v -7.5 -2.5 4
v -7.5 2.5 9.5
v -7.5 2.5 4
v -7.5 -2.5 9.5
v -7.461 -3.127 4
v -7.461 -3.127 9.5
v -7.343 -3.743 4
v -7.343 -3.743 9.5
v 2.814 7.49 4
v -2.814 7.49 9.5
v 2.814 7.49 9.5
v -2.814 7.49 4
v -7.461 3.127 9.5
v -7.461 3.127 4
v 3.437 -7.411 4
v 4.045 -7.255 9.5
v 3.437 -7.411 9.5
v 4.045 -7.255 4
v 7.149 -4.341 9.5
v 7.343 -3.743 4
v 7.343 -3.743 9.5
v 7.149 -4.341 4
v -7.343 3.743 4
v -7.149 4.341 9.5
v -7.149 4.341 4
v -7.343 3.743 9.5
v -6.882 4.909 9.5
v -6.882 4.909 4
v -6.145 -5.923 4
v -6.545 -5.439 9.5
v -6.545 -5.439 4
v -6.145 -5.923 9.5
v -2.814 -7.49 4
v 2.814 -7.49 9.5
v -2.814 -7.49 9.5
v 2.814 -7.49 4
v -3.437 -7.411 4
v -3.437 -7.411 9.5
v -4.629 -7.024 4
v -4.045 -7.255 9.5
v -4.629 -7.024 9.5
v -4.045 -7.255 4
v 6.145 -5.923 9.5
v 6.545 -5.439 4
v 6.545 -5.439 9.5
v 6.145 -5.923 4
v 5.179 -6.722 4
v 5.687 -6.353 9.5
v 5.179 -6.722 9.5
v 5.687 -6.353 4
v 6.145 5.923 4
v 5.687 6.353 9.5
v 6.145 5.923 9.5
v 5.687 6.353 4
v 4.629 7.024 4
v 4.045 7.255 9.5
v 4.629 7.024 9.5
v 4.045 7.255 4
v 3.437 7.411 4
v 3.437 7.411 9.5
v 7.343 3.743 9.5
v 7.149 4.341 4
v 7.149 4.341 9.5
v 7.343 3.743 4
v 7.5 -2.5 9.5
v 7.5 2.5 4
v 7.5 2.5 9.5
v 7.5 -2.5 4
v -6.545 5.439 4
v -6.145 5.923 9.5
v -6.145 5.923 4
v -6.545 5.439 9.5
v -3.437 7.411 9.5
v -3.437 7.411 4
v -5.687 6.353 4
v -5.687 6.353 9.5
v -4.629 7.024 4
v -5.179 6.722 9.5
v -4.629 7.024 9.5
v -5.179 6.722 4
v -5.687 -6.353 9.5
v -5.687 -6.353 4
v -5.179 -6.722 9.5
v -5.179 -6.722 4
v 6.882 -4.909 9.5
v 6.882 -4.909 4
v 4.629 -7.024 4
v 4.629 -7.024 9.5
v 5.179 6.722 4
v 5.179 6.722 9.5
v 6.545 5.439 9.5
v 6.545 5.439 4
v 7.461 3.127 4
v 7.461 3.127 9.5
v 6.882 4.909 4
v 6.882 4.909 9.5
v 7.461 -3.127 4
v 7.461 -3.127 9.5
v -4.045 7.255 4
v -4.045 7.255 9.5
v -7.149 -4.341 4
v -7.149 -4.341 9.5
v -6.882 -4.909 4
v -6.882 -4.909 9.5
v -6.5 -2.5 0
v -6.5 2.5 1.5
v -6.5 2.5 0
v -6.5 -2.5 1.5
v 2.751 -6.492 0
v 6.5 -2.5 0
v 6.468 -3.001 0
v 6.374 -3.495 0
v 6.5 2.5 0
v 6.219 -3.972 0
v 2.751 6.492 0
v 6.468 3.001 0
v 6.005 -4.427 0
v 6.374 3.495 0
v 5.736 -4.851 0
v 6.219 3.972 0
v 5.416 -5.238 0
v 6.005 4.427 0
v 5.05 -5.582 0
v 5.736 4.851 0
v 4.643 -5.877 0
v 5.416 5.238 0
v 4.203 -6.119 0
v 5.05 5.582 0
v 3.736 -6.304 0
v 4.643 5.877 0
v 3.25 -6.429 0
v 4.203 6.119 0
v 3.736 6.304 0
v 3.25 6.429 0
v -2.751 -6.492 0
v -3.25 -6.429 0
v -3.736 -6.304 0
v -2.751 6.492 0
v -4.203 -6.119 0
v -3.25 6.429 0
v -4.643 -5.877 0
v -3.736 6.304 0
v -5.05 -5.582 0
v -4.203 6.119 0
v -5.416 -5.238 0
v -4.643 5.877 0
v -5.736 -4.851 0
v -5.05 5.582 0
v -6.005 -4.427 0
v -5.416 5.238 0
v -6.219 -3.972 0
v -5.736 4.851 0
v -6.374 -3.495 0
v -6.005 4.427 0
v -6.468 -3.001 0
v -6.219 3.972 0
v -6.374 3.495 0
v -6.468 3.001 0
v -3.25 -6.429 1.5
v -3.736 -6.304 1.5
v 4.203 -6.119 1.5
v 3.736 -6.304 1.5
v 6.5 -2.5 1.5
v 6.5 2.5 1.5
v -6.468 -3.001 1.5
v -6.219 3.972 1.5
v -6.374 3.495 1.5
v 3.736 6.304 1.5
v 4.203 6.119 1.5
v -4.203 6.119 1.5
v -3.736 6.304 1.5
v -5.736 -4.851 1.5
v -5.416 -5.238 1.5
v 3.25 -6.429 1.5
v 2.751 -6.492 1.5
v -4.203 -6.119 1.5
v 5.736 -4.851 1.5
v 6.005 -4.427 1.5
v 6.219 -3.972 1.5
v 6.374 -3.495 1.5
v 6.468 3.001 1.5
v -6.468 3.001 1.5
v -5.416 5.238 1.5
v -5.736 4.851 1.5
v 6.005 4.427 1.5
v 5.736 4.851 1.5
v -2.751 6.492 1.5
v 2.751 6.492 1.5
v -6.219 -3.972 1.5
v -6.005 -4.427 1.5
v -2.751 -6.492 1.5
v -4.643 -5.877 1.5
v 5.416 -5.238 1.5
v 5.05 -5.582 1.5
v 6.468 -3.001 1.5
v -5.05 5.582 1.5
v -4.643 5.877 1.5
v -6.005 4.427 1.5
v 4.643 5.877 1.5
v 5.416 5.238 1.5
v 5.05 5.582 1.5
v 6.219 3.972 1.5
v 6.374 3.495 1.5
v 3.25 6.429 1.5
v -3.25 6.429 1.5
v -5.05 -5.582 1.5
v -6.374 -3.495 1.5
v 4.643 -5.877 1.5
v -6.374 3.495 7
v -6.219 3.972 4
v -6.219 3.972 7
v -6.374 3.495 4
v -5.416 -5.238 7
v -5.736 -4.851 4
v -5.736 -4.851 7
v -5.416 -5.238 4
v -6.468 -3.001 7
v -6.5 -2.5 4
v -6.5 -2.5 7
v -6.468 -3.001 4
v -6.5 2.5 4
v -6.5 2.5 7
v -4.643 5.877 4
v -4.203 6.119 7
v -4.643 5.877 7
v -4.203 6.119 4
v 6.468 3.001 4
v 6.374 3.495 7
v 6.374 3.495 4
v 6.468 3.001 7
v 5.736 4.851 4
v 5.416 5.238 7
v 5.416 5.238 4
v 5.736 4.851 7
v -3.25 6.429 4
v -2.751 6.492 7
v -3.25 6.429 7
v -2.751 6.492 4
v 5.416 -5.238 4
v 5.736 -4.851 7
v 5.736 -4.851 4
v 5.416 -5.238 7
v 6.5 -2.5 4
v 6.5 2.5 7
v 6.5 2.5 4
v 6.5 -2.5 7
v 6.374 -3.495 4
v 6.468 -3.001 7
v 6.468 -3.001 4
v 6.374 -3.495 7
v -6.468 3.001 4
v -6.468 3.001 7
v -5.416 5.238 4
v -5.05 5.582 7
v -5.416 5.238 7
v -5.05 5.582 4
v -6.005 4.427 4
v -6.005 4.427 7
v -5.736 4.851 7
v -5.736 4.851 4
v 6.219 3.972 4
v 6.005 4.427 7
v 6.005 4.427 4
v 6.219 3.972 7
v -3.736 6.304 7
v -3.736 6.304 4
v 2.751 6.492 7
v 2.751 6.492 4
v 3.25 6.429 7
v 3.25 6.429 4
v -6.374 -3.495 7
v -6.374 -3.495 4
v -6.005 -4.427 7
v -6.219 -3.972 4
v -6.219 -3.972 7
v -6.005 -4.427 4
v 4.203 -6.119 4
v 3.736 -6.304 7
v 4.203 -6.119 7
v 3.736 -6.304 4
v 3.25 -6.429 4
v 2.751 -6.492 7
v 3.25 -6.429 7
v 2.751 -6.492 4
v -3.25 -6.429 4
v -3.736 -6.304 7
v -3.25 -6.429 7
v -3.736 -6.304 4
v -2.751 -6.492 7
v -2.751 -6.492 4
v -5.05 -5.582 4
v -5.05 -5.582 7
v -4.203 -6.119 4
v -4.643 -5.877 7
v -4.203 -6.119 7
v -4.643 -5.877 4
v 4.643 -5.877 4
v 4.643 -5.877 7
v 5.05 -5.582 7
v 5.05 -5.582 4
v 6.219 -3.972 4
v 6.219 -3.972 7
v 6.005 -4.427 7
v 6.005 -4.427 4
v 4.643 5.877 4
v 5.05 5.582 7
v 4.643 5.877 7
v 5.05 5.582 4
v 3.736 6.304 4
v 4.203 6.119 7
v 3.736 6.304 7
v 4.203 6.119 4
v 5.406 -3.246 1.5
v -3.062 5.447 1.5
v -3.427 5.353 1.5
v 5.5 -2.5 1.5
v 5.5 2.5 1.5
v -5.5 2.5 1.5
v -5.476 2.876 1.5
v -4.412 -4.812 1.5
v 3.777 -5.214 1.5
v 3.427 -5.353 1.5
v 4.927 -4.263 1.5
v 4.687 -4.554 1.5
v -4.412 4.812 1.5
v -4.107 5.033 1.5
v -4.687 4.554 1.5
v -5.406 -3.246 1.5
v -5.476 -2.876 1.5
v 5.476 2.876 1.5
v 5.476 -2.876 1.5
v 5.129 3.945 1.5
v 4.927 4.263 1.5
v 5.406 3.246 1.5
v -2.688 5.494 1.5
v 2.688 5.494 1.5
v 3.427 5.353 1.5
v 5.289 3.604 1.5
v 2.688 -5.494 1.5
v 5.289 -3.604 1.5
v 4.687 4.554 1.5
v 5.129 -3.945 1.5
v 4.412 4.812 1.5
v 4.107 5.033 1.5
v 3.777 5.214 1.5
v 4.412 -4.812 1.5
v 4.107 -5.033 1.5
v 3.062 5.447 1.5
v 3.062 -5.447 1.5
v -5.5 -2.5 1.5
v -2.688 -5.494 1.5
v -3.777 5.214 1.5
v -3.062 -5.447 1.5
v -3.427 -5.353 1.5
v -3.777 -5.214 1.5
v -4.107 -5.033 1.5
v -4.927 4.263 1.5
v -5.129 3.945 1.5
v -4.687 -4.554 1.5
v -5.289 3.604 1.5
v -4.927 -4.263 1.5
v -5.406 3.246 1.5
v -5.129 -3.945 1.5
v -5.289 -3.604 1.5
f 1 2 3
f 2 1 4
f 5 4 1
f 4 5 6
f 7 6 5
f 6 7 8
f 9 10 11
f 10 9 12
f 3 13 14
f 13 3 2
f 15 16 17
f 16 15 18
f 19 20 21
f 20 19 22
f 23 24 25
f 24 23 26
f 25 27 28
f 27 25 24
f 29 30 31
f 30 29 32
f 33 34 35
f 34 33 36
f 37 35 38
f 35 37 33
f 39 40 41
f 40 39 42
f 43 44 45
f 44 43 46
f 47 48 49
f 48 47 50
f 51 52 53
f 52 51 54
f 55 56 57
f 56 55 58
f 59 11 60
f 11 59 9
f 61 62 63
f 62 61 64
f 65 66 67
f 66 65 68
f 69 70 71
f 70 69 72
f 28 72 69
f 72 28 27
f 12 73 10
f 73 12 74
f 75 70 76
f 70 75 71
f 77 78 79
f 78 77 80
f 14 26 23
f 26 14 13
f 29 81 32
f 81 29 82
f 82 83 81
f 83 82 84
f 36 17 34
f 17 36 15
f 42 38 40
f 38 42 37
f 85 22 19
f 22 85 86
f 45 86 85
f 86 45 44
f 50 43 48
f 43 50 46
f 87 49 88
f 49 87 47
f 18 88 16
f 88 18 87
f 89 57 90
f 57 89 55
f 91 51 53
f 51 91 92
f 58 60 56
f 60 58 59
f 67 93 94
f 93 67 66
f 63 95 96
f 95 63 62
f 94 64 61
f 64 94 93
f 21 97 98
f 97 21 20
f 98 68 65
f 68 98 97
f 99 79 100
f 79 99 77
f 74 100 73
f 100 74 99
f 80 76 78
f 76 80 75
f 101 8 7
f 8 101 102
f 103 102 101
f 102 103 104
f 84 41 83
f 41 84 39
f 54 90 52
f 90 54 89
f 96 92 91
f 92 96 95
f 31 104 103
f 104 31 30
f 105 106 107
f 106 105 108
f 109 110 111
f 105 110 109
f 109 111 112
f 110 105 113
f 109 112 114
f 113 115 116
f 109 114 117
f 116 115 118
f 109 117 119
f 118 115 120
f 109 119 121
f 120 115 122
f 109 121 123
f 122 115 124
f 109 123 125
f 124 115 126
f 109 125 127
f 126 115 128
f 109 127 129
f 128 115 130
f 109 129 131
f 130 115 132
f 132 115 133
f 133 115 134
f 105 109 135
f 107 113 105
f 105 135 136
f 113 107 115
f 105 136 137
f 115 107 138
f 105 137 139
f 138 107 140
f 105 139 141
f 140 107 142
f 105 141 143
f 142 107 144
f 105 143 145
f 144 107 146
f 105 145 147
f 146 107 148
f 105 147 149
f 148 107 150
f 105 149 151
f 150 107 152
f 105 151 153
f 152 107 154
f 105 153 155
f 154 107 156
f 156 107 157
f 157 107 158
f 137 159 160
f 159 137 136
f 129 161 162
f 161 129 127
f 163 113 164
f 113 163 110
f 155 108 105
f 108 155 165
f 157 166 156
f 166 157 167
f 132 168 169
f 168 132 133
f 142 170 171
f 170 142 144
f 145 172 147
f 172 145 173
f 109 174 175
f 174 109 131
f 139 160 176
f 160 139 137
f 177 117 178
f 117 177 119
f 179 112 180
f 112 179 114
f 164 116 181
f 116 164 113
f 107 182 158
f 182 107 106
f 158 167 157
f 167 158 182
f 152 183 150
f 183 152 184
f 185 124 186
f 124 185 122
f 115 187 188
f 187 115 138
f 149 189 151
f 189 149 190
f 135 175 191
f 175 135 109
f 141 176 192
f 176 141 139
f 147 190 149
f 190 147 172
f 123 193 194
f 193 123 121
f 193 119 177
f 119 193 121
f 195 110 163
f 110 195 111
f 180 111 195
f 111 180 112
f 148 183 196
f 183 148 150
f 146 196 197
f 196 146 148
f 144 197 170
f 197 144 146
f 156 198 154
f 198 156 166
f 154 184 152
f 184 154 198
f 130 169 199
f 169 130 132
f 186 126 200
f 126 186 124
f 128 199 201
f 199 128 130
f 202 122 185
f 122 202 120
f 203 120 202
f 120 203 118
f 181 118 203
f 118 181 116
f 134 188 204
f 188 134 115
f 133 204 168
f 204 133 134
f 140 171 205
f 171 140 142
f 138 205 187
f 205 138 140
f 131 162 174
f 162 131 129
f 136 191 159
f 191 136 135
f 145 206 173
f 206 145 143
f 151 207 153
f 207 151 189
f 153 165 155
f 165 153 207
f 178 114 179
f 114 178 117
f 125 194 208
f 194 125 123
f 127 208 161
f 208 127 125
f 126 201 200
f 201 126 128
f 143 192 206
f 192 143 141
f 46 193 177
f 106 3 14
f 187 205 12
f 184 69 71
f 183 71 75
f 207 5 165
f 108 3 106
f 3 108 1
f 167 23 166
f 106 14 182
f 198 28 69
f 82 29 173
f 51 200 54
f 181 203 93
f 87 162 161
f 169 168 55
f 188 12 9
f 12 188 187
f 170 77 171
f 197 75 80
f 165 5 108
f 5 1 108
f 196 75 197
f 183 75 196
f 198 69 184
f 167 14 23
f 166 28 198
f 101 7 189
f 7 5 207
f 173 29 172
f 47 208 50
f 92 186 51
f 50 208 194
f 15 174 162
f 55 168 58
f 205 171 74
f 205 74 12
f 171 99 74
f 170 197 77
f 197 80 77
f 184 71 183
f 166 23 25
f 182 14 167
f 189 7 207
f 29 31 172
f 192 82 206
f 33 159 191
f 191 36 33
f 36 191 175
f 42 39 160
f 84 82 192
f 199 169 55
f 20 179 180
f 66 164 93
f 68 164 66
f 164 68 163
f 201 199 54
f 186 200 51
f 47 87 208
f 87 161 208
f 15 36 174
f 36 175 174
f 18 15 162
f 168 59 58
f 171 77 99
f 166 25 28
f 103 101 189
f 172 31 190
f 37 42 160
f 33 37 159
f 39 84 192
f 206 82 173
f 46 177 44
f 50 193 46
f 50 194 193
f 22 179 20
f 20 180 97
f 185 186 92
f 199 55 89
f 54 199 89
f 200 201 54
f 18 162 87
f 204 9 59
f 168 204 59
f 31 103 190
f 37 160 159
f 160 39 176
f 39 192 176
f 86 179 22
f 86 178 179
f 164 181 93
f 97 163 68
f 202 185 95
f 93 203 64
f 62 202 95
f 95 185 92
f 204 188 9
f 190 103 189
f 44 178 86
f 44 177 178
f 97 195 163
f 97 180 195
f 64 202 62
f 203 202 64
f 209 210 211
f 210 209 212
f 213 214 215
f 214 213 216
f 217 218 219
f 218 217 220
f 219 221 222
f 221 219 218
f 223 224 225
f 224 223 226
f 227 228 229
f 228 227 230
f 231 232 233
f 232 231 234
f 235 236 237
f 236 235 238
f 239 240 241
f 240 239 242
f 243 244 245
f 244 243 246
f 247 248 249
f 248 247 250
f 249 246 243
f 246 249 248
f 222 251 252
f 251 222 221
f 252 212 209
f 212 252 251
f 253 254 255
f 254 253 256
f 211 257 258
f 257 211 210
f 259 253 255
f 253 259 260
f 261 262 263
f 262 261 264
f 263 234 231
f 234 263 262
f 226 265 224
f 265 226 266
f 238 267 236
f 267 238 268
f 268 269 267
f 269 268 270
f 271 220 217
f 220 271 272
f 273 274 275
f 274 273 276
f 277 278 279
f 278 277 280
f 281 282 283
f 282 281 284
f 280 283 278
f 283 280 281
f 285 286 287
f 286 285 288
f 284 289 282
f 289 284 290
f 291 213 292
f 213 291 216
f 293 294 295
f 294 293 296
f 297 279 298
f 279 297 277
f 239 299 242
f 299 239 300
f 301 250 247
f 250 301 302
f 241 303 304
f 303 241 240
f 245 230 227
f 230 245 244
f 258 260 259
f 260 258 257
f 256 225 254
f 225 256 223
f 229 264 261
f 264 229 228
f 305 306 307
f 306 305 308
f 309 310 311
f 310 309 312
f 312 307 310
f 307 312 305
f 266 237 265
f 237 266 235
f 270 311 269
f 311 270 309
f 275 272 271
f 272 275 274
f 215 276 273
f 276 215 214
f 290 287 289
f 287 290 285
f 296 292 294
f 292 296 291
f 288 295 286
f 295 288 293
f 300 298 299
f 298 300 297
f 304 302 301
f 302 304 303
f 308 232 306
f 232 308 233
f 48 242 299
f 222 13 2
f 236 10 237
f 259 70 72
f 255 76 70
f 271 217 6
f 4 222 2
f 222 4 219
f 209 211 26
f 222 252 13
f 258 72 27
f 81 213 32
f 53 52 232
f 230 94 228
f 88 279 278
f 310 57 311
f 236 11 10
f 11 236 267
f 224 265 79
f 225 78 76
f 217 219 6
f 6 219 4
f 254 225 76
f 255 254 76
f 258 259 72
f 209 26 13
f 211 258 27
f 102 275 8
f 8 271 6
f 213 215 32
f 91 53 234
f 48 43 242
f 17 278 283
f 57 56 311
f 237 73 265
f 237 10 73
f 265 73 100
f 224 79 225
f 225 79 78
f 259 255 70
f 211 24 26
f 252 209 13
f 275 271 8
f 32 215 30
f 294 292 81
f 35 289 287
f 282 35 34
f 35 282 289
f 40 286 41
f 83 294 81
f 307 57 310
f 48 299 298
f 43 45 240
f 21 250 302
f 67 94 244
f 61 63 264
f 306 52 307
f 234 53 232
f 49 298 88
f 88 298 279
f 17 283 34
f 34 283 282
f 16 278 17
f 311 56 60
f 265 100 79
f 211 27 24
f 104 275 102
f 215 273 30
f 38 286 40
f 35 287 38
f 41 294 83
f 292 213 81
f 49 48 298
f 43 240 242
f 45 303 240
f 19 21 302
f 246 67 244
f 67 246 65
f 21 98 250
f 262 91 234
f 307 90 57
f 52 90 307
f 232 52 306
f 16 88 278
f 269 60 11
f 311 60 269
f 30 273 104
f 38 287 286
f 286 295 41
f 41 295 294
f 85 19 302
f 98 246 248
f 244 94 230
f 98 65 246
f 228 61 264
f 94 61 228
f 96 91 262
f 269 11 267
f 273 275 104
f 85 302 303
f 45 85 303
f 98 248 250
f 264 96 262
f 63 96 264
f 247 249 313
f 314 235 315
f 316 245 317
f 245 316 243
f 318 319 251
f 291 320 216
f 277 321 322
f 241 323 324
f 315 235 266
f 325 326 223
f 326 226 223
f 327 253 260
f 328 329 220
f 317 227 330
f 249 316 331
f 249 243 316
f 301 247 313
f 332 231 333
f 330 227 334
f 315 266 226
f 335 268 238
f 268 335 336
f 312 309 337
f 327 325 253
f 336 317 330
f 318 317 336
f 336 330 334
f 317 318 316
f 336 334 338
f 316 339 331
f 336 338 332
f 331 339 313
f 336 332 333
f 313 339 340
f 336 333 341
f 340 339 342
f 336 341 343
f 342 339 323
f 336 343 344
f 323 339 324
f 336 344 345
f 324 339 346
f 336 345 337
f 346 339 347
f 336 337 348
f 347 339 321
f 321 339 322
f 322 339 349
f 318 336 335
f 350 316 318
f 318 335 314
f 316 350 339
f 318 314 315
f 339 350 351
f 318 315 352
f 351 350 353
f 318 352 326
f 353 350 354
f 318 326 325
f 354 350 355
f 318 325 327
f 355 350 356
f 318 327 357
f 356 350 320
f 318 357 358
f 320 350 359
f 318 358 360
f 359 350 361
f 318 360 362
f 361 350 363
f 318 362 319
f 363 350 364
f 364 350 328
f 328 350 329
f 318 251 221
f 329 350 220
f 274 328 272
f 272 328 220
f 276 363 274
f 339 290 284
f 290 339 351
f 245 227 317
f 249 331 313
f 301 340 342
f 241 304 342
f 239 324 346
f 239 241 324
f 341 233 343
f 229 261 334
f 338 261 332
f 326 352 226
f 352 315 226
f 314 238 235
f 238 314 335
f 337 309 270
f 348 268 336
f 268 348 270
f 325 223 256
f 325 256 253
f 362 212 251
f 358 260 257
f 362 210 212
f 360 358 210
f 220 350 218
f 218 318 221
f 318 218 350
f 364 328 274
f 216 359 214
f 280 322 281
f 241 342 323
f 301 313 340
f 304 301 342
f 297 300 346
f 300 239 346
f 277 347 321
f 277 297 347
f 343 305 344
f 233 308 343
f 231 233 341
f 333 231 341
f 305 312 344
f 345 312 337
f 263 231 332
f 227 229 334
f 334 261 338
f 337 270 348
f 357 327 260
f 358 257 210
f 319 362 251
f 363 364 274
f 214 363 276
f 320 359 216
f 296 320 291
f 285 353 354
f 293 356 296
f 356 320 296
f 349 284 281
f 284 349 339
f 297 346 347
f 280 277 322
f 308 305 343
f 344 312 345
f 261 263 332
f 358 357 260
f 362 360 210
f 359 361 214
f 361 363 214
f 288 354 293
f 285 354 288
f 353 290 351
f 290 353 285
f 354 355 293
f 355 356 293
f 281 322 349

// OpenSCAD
$fn = 50;


difference() {
	union() {
		translate(v = [0, 0, 4.0000000000]) {
			hull() {
				translate(v = [-2.5000000000, 2.5000000000, 0]) {
					cylinder(h = 5.5000000000, r = 5);
				}
				translate(v = [2.5000000000, 2.5000000000, 0]) {
					cylinder(h = 5.5000000000, r = 5);
				}
				translate(v = [-2.5000000000, -2.5000000000, 0]) {
					cylinder(h = 5.5000000000, r = 5);
				}
				translate(v = [2.5000000000, -2.5000000000, 0]) {
					cylinder(h = 5.5000000000, r = 5);
				}
			}
		}
		hull() {
			translate(v = [-2.5000000000, 2.5000000000, 0]) {
				cylinder(h = 1.5000000000, r = 4);
			}
			translate(v = [2.5000000000, 2.5000000000, 0]) {
				cylinder(h = 1.5000000000, r = 4);
			}
			translate(v = [-2.5000000000, -2.5000000000, 0]) {
				cylinder(h = 1.5000000000, r = 4);
			}
			translate(v = [2.5000000000, -2.5000000000, 0]) {
				cylinder(h = 1.5000000000, r = 4);
			}
		}
		translate(v = [0, 0, 1.5000000000]) {
			hull() {
				translate(v = [-2.5000000000, 2.5000000000, 0]) {
					cylinder(h = 2.5000000000, r1 = 4, r2 = 5.0000000000);
				}
				translate(v = [2.5000000000, 2.5000000000, 0]) {
					cylinder(h = 2.5000000000, r1 = 4, r2 = 5.0000000000);
				}
				translate(v = [-2.5000000000, -2.5000000000, 0]) {
					cylinder(h = 2.5000000000, r1 = 4, r2 = 5.0000000000);
				}
				translate(v = [2.5000000000, -2.5000000000, 0]) {
					cylinder(h = 2.5000000000, r1 = 4, r2 = 5.0000000000);
				}
			}
		}
	}
	union() {
		translate(v = [0, 0, 4.0000000000]) {
			#hull() {
				translate(v = [-2.5000000000, 2.5000000000, 0]) {
					cylinder(h = 5.5000000000, r = 4);
				}
				translate(v = [2.5000000000, 2.5000000000, 0]) {
					cylinder(h = 5.5000000000, r = 4);
				}
				translate(v = [-2.5000000000, -2.5000000000, 0]) {
					cylinder(h = 5.5000000000, r = 4);
				}
				translate(v = [2.5000000000, -2.5000000000, 0]) {
					cylinder(h = 5.5000000000, r = 4);
				}
			}
		}
		translate(v = [0, 0, 7]) {
			hull() {
				translate(v = [-2.5000000000, 2.5000000000, 0]) {
					cylinder(h = 2.5000000000, r1 = 4, r2 = 5.0000000000);
				}
				translate(v = [2.5000000000, 2.5000000000, 0]) {
					cylinder(h = 2.5000000000, r1 = 4, r2 = 5.0000000000);
				}
				translate(v = [-2.5000000000, -2.5000000000, 0]) {
					cylinder(h = 2.5000000000, r1 = 4, r2 = 5.0000000000);
				}
				translate(v = [2.5000000000, -2.5000000000, 0]) {
					cylinder(h = 2.5000000000, r1 = 4, r2 = 5.0000000000);
				}
			}
		}
		translate(v = [0, 0, 1.5000000000]) {
			#hull() {
				translate(v = [-2.5000000000, 2.5000000000, 0]) {
					cylinder(h = 2.5000000000, r1 = 3, r2 = 4.0000000000);
				}
				translate(v = [2.5000000000, 2.5000000000, 0]) {
					cylinder(h = 2.5000000000, r1 = 3, r2 = 4.0000000000);
				}
				translate(v = [-2.5000000000, -2.5000000000, 0]) {
					cylinder(h = 2.5000000000, r1 = 3, r2 = 4.0000000000);
				}
				translate(v = [2.5000000000, -2.5000000000, 0]) {
					cylinder(h = 2.5000000000, r1 = 3, r2 = 4.0000000000);
				}
			}
		}
	}
}
